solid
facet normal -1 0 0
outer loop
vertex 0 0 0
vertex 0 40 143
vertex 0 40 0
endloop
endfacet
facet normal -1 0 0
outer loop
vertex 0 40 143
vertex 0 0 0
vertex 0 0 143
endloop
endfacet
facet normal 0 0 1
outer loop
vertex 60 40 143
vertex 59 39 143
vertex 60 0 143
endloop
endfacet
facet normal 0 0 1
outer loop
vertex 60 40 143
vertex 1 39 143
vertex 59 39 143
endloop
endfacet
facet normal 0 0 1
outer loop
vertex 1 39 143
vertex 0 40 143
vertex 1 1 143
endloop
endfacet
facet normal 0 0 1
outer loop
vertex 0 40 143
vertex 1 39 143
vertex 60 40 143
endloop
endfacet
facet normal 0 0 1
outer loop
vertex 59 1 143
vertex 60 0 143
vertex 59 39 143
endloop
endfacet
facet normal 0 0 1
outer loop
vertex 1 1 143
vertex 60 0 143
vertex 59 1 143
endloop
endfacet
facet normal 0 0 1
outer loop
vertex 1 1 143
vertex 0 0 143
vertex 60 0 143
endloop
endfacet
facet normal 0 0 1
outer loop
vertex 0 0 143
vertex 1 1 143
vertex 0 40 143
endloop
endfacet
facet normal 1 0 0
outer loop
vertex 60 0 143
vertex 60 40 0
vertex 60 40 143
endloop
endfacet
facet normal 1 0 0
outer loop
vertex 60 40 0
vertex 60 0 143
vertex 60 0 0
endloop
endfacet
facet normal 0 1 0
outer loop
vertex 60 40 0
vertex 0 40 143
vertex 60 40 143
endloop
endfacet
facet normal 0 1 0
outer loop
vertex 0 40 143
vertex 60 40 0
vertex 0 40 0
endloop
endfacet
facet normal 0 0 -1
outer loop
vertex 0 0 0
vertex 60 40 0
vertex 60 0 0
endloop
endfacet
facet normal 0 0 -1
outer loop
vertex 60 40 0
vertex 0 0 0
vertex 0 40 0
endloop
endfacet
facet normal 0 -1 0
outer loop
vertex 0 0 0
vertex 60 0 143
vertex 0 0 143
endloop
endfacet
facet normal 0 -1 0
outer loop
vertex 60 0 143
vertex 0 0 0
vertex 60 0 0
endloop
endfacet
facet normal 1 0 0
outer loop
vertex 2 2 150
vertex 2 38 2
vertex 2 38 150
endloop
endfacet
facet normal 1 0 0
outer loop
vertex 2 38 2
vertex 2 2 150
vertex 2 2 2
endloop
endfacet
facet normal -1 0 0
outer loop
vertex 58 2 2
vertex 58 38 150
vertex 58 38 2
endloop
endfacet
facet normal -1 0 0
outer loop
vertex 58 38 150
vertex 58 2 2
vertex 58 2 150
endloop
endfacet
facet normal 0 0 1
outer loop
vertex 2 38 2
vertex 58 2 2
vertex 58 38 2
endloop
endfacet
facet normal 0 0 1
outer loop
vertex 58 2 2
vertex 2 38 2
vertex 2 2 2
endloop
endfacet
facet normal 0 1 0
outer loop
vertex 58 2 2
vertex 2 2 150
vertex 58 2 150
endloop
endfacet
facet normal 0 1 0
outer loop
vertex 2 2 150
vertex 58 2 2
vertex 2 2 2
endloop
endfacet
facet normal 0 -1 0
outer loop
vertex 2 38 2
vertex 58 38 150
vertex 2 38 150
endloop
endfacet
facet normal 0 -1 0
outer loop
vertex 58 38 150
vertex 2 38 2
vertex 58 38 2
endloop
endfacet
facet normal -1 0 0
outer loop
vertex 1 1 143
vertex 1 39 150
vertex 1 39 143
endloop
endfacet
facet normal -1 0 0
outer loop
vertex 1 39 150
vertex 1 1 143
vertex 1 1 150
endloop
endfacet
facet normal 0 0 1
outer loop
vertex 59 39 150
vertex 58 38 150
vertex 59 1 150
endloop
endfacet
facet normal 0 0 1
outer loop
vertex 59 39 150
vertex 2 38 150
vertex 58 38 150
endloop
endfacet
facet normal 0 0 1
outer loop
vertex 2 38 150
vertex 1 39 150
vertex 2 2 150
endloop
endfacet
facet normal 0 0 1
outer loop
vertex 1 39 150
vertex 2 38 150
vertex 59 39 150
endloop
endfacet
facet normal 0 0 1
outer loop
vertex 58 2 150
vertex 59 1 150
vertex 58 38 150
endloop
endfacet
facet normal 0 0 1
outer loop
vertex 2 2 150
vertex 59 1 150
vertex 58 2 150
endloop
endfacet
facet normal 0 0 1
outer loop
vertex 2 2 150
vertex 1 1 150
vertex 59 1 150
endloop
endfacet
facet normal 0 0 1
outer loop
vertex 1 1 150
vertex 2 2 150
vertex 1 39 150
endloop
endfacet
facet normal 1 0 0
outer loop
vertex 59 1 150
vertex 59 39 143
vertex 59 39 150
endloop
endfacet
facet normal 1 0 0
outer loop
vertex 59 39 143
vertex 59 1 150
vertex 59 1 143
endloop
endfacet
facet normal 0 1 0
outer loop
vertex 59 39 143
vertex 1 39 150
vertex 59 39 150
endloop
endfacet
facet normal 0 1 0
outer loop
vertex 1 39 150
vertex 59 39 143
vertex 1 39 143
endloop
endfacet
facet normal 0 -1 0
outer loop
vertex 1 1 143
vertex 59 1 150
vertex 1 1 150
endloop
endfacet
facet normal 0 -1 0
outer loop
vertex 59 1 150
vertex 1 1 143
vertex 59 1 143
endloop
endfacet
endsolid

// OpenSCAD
$fa = 1;
$fs = 0.4;

height = 150;
Xsize = 60;
Ysize = 40;

difference() {
    cube([Xsize, Ysize, height - 7]);
    
    translate([2, 2, 2])
        cube([Xsize - 4, Ysize - 4, height - 7]);
}

difference() {
    translate([1, 1, height - 7])
        cube([Xsize - 2, Ysize - 2, 7]);
    
    translate([2, 2, height - 8])
        cube([Xsize - 4, Ysize - 4, 9]);
}
